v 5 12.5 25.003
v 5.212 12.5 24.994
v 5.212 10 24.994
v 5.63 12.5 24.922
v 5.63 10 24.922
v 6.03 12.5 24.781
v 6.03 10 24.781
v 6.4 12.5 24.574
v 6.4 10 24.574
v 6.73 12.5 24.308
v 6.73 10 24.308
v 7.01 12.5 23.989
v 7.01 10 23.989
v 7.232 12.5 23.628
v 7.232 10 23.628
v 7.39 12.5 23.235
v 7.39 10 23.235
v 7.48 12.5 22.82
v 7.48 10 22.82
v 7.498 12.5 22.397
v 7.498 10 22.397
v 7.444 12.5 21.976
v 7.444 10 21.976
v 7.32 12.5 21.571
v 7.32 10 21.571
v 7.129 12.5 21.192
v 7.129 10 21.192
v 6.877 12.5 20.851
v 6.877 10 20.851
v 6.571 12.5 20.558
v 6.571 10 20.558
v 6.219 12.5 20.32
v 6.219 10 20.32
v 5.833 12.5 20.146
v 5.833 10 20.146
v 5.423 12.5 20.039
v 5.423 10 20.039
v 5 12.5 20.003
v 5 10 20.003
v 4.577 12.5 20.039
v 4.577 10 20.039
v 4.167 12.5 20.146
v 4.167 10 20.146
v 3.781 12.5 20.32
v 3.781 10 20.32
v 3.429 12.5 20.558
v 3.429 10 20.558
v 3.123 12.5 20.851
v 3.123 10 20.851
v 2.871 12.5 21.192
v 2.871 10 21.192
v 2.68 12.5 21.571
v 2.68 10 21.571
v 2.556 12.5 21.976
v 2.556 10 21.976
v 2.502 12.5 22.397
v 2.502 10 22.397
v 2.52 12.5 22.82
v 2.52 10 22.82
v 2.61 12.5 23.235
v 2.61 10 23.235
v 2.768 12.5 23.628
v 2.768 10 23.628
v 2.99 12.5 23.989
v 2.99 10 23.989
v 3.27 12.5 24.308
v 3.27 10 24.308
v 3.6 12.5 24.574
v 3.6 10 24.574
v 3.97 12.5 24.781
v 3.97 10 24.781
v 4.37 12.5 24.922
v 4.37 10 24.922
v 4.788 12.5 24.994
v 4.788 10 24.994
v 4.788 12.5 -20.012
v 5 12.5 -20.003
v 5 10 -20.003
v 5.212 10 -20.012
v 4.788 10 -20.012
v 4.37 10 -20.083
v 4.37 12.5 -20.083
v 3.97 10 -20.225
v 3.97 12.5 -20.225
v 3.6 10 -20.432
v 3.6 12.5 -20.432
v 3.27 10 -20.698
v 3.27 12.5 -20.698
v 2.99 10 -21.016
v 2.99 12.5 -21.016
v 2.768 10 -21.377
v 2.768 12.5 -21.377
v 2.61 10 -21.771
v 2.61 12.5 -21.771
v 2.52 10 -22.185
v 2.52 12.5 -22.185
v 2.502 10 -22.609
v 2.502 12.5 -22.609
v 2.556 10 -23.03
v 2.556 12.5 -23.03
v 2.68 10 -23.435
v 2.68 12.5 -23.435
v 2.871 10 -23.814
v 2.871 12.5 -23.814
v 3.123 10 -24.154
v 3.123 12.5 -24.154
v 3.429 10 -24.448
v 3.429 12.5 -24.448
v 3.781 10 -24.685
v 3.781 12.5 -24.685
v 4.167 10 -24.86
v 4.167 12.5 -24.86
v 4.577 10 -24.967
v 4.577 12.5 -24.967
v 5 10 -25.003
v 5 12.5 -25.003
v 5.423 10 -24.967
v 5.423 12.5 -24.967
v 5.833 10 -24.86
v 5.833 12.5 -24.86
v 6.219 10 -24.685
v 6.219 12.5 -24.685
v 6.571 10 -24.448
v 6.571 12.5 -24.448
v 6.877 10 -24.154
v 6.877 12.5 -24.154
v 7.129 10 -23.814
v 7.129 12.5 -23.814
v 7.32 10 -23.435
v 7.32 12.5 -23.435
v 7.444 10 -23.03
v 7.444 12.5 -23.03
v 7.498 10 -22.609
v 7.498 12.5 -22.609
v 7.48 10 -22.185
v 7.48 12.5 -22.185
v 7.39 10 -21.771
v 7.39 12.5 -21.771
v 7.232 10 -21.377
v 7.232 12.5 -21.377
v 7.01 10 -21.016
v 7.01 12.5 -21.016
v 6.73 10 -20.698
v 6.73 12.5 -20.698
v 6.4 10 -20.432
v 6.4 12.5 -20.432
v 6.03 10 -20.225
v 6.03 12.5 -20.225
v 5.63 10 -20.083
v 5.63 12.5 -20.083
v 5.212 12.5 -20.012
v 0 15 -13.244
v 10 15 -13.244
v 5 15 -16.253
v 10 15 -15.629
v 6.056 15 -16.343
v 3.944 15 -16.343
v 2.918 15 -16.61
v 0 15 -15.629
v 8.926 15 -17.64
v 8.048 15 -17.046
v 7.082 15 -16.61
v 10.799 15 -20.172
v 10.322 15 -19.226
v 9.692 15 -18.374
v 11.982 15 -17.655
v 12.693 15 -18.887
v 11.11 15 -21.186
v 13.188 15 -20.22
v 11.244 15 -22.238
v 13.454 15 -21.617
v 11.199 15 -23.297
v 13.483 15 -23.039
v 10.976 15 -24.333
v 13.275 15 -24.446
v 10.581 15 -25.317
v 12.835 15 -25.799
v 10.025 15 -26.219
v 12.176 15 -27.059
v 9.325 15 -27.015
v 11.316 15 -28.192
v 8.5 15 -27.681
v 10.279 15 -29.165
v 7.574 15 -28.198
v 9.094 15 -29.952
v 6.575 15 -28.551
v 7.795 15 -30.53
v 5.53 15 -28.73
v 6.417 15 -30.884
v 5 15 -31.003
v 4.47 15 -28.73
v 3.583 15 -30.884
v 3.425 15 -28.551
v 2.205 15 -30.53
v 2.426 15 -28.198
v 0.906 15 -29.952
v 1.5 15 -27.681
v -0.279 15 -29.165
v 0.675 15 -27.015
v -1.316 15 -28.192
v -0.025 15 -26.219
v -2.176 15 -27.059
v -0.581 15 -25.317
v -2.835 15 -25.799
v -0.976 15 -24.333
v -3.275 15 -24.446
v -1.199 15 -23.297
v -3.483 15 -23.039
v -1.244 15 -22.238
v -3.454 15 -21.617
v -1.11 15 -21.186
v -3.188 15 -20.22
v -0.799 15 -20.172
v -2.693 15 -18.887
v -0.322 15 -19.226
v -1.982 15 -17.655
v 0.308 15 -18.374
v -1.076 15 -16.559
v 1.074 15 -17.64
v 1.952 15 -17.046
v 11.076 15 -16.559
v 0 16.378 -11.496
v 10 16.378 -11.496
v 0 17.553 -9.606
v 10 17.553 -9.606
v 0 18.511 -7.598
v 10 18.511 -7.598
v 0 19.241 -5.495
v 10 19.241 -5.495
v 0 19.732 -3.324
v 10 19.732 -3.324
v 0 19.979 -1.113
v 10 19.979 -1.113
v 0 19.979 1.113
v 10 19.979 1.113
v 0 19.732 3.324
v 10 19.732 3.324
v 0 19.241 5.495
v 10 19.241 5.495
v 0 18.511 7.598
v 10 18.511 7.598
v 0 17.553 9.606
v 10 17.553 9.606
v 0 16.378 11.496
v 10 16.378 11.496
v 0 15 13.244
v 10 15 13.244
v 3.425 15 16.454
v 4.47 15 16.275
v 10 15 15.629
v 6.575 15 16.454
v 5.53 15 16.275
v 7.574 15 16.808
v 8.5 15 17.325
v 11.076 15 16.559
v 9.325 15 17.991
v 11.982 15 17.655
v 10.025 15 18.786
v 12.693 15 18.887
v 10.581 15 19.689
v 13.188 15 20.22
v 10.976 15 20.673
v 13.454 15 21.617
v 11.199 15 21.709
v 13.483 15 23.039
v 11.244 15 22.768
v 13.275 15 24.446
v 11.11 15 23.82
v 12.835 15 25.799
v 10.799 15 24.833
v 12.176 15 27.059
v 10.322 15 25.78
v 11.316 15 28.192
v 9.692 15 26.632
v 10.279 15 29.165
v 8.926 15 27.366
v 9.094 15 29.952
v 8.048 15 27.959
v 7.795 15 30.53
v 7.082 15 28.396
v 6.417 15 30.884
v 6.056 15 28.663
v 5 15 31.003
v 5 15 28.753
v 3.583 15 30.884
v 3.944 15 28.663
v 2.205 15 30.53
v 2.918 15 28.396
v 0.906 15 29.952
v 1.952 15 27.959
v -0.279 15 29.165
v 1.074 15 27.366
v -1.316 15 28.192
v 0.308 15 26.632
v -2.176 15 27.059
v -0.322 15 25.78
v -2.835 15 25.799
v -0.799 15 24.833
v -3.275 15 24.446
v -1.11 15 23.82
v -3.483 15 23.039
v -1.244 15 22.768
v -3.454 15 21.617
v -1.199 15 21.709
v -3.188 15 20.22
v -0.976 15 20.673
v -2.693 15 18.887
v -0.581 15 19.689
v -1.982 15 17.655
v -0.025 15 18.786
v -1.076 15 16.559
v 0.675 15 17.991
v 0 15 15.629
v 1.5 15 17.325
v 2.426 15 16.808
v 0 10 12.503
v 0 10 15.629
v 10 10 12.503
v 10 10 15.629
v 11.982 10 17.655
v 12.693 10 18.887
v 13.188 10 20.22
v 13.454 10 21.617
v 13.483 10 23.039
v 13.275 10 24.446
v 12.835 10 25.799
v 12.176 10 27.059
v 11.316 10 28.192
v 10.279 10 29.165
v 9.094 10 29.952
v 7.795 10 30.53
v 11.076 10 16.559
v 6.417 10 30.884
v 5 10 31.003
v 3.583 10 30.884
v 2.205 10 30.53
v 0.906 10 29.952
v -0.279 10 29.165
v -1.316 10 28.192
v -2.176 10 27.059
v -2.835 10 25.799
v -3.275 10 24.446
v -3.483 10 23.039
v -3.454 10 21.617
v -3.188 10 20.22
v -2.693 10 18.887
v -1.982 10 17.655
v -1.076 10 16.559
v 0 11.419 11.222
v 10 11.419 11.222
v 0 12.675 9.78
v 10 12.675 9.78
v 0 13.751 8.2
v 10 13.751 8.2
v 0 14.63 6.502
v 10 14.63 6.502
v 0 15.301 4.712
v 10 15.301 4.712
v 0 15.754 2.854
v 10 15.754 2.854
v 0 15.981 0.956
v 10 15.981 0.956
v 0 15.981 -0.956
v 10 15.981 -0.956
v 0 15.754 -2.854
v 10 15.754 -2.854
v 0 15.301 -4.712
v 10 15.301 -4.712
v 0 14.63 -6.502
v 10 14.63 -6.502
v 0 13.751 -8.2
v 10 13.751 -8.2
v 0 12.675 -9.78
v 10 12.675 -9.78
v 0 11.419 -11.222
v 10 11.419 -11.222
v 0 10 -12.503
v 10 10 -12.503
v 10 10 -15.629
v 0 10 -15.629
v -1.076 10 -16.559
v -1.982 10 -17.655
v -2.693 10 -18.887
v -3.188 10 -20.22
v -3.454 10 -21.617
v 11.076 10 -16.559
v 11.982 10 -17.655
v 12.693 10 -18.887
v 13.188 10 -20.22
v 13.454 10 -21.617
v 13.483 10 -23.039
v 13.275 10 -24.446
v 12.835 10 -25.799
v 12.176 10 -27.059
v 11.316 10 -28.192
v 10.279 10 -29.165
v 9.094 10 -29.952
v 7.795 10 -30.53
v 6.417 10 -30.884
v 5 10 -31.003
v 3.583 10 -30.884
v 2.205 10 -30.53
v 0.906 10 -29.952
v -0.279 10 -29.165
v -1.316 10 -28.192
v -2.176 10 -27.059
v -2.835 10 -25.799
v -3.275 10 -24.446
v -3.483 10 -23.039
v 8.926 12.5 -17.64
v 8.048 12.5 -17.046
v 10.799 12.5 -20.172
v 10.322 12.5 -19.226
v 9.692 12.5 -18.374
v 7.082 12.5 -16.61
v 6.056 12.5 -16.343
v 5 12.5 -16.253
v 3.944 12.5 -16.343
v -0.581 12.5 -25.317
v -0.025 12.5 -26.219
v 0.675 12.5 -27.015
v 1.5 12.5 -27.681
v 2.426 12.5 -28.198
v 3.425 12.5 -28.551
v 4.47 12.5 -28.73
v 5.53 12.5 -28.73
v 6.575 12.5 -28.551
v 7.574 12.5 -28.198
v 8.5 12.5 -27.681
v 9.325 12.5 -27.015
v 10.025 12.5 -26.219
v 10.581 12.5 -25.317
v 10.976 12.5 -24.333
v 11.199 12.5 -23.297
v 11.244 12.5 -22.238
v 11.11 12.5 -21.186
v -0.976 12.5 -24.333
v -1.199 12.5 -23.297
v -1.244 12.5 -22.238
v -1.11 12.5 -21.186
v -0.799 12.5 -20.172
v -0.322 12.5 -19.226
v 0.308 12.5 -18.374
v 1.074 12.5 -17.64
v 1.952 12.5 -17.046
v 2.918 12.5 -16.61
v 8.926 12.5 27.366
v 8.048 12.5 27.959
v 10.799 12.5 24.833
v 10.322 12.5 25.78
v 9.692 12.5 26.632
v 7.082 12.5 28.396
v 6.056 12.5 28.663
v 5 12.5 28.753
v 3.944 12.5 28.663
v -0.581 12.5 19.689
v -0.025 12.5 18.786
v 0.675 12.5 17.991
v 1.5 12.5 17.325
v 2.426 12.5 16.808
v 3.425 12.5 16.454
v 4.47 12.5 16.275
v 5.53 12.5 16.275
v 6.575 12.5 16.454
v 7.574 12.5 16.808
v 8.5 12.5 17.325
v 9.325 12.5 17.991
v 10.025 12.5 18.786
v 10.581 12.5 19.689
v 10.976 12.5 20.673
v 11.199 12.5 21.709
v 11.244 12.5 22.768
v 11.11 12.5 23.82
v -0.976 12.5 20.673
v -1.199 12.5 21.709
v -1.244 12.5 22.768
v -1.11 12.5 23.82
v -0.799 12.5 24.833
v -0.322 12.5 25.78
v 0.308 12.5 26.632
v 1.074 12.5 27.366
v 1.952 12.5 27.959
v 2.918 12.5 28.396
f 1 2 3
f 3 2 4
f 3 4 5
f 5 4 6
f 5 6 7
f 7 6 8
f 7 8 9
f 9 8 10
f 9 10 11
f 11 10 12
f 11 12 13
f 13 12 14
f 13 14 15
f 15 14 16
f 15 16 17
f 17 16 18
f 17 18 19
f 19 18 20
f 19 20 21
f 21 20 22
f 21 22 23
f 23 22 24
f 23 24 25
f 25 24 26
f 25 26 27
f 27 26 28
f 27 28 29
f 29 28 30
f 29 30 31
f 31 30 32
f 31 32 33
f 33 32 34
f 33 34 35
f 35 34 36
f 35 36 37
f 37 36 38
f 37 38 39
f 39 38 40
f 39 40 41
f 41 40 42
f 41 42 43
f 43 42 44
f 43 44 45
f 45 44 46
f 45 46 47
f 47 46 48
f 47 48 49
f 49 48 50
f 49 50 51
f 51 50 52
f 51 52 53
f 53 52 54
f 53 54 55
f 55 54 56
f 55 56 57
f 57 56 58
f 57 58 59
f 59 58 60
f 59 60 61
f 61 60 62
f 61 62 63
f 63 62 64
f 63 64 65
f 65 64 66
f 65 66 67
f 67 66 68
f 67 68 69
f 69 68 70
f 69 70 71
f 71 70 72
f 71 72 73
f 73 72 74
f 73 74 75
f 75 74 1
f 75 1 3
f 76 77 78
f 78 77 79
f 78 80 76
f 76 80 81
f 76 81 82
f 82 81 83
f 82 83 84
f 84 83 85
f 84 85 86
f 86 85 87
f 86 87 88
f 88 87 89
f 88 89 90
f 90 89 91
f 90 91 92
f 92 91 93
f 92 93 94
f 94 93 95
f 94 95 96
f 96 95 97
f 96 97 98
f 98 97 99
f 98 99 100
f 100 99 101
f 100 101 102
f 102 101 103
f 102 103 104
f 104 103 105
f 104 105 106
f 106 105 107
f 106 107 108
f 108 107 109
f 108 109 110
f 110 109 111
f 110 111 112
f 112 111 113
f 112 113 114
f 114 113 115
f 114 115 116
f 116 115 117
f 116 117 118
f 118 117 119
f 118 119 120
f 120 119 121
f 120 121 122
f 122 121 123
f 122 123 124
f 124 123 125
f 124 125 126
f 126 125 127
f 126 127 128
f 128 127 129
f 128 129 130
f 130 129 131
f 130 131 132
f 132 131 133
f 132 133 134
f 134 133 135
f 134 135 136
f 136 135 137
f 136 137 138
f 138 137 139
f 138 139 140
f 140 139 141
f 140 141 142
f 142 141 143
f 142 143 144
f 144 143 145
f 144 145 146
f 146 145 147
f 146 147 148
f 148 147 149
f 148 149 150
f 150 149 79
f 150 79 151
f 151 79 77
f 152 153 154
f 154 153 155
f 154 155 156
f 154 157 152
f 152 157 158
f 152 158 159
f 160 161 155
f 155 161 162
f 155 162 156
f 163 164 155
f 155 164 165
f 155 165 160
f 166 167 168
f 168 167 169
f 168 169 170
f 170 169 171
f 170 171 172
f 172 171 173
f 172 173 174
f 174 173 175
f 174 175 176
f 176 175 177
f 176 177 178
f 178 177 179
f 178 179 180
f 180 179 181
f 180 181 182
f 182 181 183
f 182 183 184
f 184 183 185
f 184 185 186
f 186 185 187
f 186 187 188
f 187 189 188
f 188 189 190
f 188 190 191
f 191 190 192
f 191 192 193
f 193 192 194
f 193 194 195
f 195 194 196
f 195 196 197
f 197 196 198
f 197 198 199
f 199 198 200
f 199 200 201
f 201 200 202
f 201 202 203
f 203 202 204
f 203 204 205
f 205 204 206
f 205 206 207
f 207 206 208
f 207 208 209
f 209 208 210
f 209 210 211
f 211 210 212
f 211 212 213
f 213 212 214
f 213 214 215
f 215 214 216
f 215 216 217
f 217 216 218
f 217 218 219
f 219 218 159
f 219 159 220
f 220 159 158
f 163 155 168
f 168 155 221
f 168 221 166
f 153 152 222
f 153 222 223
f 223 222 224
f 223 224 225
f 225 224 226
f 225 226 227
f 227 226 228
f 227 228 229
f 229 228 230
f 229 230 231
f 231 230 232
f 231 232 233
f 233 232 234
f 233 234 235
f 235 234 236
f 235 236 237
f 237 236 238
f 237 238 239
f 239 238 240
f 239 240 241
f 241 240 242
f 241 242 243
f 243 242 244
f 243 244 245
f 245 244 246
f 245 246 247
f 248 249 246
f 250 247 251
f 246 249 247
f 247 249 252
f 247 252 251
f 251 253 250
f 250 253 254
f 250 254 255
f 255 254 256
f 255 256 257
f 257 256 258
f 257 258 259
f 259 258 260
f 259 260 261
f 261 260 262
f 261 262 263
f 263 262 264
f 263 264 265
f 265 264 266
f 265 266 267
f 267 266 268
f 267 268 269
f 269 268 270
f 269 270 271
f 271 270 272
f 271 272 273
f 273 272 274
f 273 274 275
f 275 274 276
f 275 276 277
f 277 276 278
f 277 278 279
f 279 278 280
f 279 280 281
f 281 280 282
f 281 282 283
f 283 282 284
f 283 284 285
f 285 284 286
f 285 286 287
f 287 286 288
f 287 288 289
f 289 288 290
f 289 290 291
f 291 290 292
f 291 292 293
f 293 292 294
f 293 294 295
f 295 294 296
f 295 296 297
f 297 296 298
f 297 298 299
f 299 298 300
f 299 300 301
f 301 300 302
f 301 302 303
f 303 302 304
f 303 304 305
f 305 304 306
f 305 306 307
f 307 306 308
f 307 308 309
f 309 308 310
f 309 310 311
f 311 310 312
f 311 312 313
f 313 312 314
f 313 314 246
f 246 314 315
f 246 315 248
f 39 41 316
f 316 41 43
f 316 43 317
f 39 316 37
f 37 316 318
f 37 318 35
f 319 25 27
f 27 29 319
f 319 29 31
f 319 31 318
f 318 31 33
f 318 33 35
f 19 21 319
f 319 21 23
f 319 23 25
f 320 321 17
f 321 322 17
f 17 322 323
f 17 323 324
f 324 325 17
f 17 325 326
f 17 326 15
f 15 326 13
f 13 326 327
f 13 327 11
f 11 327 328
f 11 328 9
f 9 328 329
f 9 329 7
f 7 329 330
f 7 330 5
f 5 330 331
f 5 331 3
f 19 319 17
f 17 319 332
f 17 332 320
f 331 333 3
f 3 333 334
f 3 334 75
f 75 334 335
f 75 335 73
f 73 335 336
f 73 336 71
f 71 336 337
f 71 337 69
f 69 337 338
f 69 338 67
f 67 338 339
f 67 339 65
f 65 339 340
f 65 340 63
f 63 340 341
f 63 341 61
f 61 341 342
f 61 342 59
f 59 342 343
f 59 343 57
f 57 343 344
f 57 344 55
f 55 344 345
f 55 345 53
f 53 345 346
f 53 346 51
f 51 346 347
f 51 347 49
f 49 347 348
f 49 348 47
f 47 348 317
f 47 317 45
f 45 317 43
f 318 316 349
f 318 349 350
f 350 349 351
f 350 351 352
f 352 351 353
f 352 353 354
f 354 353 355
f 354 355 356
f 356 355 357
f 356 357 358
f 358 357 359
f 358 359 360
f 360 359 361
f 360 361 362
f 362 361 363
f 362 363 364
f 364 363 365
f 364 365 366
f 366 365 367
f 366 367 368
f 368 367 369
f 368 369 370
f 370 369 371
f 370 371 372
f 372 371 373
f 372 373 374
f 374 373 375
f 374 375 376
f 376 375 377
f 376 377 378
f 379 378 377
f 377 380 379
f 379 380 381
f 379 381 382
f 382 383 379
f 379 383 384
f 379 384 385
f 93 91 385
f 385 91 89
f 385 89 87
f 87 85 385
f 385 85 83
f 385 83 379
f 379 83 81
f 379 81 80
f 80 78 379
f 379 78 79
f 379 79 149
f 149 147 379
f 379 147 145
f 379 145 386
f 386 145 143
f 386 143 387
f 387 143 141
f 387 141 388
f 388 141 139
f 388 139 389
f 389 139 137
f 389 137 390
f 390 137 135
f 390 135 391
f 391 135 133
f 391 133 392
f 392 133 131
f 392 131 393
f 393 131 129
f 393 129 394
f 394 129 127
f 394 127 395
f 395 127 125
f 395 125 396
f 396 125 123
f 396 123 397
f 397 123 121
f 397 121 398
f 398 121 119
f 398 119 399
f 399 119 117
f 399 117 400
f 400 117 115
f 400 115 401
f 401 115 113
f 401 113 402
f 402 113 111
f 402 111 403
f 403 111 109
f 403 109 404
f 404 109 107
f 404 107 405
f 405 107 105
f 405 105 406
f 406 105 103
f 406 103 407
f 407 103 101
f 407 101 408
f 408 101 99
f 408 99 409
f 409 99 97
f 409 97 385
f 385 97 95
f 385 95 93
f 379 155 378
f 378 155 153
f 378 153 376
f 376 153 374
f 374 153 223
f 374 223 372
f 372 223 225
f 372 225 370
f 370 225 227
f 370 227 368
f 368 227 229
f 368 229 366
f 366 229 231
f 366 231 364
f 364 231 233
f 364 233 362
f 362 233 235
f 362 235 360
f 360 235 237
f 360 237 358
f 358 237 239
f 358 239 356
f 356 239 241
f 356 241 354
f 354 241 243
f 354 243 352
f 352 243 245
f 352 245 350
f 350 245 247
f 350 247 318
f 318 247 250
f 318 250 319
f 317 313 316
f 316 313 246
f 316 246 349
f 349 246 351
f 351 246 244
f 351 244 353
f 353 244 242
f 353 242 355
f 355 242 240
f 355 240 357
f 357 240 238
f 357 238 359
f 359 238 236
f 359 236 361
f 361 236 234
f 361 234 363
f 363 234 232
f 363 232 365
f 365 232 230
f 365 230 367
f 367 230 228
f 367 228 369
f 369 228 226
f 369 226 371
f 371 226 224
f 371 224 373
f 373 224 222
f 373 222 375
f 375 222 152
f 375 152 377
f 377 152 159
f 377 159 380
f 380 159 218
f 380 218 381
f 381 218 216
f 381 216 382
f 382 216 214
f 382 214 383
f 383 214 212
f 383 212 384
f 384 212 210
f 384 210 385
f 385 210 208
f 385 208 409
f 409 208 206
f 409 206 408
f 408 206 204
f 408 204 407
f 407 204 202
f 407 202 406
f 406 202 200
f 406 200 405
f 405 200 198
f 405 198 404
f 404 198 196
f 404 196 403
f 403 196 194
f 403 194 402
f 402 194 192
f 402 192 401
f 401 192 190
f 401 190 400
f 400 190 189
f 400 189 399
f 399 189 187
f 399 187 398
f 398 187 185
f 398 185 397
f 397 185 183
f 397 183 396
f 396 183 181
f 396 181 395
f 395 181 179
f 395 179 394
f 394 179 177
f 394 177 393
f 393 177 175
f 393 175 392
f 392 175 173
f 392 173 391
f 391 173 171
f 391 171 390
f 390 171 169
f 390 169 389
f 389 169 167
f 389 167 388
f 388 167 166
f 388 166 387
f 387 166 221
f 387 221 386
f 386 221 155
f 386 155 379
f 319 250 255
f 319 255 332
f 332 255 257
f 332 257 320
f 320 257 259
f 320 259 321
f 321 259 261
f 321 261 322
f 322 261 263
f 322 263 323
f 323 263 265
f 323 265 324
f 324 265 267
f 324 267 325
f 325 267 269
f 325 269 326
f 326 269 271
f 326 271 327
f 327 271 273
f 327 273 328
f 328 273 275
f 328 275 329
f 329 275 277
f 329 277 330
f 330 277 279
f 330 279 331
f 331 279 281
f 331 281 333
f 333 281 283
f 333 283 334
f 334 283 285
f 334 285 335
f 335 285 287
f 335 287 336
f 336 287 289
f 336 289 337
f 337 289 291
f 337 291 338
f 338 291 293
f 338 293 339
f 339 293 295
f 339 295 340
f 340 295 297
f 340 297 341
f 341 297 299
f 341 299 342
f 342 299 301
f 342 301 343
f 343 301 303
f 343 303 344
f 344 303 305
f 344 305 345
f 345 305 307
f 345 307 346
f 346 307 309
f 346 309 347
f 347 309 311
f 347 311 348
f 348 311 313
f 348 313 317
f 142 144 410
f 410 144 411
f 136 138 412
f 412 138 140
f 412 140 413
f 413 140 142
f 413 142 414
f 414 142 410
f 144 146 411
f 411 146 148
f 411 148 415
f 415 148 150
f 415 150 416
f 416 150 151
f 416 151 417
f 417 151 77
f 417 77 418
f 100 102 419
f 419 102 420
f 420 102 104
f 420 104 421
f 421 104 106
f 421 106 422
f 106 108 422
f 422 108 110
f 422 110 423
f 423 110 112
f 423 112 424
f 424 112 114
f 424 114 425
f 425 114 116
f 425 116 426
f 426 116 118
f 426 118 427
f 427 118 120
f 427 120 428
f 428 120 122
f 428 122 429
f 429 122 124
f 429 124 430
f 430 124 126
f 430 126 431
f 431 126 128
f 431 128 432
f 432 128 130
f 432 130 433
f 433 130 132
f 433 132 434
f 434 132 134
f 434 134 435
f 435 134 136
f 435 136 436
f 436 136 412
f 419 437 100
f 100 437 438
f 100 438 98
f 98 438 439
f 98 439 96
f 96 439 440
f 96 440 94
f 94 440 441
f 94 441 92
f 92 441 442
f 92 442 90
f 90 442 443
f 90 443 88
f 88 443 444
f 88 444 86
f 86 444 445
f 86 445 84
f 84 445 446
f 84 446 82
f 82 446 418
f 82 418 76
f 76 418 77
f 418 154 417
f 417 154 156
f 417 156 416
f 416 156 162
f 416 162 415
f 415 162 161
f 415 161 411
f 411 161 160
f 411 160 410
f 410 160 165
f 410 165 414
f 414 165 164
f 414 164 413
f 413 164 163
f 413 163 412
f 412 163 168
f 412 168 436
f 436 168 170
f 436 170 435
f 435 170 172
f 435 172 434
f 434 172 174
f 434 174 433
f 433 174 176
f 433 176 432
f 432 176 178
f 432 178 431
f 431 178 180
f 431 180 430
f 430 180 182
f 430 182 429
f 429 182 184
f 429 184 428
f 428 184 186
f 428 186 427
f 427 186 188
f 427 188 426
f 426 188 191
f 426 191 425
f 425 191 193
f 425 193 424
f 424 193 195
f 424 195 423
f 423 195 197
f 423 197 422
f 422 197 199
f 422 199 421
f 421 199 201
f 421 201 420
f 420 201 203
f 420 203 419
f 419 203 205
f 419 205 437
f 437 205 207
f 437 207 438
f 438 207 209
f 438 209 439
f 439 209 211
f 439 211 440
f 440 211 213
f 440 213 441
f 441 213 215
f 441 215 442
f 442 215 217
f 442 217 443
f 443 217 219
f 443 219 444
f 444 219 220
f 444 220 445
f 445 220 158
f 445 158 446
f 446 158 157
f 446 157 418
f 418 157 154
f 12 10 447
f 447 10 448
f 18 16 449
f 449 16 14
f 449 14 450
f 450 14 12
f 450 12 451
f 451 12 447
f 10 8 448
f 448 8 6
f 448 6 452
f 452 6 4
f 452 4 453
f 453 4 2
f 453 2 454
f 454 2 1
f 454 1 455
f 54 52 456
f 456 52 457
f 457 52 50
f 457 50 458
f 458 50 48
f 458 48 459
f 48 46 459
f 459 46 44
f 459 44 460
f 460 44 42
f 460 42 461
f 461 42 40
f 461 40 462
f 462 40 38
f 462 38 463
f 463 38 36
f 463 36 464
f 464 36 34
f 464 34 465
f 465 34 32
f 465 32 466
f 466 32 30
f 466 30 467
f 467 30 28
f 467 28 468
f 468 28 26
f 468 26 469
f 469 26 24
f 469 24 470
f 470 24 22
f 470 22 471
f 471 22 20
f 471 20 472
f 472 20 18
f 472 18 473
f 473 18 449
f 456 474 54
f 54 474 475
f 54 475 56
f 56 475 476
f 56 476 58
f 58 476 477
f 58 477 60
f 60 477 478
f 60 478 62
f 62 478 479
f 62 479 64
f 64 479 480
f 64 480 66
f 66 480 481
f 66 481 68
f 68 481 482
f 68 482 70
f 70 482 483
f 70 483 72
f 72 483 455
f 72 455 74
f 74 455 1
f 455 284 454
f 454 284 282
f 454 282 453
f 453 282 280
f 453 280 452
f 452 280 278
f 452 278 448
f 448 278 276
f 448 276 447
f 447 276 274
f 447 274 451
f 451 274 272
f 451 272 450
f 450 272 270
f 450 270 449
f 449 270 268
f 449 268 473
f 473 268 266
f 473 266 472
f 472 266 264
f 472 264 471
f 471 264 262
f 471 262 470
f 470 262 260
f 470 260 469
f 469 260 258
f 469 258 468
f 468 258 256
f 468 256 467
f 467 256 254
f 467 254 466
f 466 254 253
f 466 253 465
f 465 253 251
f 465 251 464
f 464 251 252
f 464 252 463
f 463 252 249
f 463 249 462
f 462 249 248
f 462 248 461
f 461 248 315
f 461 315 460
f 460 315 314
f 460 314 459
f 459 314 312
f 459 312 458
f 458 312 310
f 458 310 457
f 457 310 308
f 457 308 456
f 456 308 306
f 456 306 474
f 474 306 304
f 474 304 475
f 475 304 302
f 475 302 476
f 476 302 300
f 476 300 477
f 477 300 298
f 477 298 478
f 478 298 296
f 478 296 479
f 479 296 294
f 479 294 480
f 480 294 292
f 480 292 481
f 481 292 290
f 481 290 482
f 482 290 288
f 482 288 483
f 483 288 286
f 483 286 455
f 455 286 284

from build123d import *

# Parameters (mm, degrees)
BASE_DEPTH           = 10
ESQUISSE5_R          = 2.5
VIDE_ACCES_VIS_DEPTH = 31.929020524
BOSS_START           = -5
ESQUISSE6_R          = 8.5
ESQUISSE6_R_2        = 2.587391516
ESQUISSE6_R_3        = 2.5
BOSS_VIS_DEPTH       = 5
ESQUISSE7_R          = 6.25
VIDE_ECROU_DEPTH     = 2.5


with BuildPart() as part:
    # Esquisse2 → BASE (new body)
    with BuildSketch(Plane(origin=(0, 0, 0), x_dir=(0, 0, -1), z_dir=(1, 0, 0))):
        with BuildLine():
            Line((-27.502803686, 10), (-14.361406616, 10))
            Line((-14.361406616, 10), (-12.502803686, 10))
            ThreePointArc((-12.502803686, 10), (0, 16.01), (12.502803686, 10))
            Line((12.502803686, 10), (14.361406616, 10))
            Line((14.361406616, 10), (22.502803686, 10))
            Line((22.502803686, 10), (27.502803686, 10))
            Line((27.502803686, 10), (27.502803686, 15))
            Line((27.502803686, 15), (13.24387028, 15))
            ThreePointArc((13.24387028, 15), (0, 20.01), (-13.24387028, 15))
            Line((-13.24387028, 15), (-27.502803686, 15))
            Line((-27.502803686, 15), (-27.502803686, 10))
        make_face()
    extrude(amount=BASE_DEPTH)

    # Esquisse5 → VIDE ACCES VIS (cut, through all)
    with BuildSketch(Plane.XZ.offset(-10)):
        with Locations(Location((5, 22.502803686, 0), (0, 0, 270))):
            Circle(ESQUISSE5_R)
        with Locations(Location((5, -22.502803686, 0), (0, 0, 270))):
            Circle(ESQUISSE5_R)
    extrude(amount=-VIDE_ACCES_VIS_DEPTH, mode=Mode.SUBTRACT)

    # Esquisse6 → BOSS VIS (add)
    # profile 1 of 2: a face of its own
    with BuildSketch(Plane(origin=(0, 15, 0), x_dir=(1, 0, 0), z_dir=(0, 1, 0)).offset(BOSS_START)):
        with Locations((5, 22.502803686)):
            Circle(ESQUISSE6_R)
        with Locations((5, 22.502803686)):
            Circle(ESQUISSE6_R_2, mode=Mode.SUBTRACT)
    # profile 2 of 2: a face of its own
    with BuildSketch(Plane(origin=(0, 15, 0), x_dir=(1, 0, 0), z_dir=(0, 1, 0)).offset(BOSS_START)):
        with Locations((5, -22.502803686)):
            Circle(ESQUISSE6_R)
        with Locations(Location((5, -22.502803686, 0), (0, 0, 90))):
            Circle(ESQUISSE6_R_3, mode=Mode.SUBTRACT)
    extrude(amount=BOSS_VIS_DEPTH)

    # Esquisse7 → VIDE ECROU (cut)
    with BuildSketch(Plane(origin=(0, 15, 0), x_dir=(1, 0, 0), z_dir=(0, 1, 0))):
        with Locations(Location((5, 22.502803686, 0), (0, 0, 270))):
            Circle(ESQUISSE7_R)
        with Locations(Location((5, -22.502803686, 0), (0, 0, 270))):
            Circle(ESQUISSE7_R)
    extrude(amount=-VIDE_ECROU_DEPTH, mode=Mode.SUBTRACT)


solid = part.part
